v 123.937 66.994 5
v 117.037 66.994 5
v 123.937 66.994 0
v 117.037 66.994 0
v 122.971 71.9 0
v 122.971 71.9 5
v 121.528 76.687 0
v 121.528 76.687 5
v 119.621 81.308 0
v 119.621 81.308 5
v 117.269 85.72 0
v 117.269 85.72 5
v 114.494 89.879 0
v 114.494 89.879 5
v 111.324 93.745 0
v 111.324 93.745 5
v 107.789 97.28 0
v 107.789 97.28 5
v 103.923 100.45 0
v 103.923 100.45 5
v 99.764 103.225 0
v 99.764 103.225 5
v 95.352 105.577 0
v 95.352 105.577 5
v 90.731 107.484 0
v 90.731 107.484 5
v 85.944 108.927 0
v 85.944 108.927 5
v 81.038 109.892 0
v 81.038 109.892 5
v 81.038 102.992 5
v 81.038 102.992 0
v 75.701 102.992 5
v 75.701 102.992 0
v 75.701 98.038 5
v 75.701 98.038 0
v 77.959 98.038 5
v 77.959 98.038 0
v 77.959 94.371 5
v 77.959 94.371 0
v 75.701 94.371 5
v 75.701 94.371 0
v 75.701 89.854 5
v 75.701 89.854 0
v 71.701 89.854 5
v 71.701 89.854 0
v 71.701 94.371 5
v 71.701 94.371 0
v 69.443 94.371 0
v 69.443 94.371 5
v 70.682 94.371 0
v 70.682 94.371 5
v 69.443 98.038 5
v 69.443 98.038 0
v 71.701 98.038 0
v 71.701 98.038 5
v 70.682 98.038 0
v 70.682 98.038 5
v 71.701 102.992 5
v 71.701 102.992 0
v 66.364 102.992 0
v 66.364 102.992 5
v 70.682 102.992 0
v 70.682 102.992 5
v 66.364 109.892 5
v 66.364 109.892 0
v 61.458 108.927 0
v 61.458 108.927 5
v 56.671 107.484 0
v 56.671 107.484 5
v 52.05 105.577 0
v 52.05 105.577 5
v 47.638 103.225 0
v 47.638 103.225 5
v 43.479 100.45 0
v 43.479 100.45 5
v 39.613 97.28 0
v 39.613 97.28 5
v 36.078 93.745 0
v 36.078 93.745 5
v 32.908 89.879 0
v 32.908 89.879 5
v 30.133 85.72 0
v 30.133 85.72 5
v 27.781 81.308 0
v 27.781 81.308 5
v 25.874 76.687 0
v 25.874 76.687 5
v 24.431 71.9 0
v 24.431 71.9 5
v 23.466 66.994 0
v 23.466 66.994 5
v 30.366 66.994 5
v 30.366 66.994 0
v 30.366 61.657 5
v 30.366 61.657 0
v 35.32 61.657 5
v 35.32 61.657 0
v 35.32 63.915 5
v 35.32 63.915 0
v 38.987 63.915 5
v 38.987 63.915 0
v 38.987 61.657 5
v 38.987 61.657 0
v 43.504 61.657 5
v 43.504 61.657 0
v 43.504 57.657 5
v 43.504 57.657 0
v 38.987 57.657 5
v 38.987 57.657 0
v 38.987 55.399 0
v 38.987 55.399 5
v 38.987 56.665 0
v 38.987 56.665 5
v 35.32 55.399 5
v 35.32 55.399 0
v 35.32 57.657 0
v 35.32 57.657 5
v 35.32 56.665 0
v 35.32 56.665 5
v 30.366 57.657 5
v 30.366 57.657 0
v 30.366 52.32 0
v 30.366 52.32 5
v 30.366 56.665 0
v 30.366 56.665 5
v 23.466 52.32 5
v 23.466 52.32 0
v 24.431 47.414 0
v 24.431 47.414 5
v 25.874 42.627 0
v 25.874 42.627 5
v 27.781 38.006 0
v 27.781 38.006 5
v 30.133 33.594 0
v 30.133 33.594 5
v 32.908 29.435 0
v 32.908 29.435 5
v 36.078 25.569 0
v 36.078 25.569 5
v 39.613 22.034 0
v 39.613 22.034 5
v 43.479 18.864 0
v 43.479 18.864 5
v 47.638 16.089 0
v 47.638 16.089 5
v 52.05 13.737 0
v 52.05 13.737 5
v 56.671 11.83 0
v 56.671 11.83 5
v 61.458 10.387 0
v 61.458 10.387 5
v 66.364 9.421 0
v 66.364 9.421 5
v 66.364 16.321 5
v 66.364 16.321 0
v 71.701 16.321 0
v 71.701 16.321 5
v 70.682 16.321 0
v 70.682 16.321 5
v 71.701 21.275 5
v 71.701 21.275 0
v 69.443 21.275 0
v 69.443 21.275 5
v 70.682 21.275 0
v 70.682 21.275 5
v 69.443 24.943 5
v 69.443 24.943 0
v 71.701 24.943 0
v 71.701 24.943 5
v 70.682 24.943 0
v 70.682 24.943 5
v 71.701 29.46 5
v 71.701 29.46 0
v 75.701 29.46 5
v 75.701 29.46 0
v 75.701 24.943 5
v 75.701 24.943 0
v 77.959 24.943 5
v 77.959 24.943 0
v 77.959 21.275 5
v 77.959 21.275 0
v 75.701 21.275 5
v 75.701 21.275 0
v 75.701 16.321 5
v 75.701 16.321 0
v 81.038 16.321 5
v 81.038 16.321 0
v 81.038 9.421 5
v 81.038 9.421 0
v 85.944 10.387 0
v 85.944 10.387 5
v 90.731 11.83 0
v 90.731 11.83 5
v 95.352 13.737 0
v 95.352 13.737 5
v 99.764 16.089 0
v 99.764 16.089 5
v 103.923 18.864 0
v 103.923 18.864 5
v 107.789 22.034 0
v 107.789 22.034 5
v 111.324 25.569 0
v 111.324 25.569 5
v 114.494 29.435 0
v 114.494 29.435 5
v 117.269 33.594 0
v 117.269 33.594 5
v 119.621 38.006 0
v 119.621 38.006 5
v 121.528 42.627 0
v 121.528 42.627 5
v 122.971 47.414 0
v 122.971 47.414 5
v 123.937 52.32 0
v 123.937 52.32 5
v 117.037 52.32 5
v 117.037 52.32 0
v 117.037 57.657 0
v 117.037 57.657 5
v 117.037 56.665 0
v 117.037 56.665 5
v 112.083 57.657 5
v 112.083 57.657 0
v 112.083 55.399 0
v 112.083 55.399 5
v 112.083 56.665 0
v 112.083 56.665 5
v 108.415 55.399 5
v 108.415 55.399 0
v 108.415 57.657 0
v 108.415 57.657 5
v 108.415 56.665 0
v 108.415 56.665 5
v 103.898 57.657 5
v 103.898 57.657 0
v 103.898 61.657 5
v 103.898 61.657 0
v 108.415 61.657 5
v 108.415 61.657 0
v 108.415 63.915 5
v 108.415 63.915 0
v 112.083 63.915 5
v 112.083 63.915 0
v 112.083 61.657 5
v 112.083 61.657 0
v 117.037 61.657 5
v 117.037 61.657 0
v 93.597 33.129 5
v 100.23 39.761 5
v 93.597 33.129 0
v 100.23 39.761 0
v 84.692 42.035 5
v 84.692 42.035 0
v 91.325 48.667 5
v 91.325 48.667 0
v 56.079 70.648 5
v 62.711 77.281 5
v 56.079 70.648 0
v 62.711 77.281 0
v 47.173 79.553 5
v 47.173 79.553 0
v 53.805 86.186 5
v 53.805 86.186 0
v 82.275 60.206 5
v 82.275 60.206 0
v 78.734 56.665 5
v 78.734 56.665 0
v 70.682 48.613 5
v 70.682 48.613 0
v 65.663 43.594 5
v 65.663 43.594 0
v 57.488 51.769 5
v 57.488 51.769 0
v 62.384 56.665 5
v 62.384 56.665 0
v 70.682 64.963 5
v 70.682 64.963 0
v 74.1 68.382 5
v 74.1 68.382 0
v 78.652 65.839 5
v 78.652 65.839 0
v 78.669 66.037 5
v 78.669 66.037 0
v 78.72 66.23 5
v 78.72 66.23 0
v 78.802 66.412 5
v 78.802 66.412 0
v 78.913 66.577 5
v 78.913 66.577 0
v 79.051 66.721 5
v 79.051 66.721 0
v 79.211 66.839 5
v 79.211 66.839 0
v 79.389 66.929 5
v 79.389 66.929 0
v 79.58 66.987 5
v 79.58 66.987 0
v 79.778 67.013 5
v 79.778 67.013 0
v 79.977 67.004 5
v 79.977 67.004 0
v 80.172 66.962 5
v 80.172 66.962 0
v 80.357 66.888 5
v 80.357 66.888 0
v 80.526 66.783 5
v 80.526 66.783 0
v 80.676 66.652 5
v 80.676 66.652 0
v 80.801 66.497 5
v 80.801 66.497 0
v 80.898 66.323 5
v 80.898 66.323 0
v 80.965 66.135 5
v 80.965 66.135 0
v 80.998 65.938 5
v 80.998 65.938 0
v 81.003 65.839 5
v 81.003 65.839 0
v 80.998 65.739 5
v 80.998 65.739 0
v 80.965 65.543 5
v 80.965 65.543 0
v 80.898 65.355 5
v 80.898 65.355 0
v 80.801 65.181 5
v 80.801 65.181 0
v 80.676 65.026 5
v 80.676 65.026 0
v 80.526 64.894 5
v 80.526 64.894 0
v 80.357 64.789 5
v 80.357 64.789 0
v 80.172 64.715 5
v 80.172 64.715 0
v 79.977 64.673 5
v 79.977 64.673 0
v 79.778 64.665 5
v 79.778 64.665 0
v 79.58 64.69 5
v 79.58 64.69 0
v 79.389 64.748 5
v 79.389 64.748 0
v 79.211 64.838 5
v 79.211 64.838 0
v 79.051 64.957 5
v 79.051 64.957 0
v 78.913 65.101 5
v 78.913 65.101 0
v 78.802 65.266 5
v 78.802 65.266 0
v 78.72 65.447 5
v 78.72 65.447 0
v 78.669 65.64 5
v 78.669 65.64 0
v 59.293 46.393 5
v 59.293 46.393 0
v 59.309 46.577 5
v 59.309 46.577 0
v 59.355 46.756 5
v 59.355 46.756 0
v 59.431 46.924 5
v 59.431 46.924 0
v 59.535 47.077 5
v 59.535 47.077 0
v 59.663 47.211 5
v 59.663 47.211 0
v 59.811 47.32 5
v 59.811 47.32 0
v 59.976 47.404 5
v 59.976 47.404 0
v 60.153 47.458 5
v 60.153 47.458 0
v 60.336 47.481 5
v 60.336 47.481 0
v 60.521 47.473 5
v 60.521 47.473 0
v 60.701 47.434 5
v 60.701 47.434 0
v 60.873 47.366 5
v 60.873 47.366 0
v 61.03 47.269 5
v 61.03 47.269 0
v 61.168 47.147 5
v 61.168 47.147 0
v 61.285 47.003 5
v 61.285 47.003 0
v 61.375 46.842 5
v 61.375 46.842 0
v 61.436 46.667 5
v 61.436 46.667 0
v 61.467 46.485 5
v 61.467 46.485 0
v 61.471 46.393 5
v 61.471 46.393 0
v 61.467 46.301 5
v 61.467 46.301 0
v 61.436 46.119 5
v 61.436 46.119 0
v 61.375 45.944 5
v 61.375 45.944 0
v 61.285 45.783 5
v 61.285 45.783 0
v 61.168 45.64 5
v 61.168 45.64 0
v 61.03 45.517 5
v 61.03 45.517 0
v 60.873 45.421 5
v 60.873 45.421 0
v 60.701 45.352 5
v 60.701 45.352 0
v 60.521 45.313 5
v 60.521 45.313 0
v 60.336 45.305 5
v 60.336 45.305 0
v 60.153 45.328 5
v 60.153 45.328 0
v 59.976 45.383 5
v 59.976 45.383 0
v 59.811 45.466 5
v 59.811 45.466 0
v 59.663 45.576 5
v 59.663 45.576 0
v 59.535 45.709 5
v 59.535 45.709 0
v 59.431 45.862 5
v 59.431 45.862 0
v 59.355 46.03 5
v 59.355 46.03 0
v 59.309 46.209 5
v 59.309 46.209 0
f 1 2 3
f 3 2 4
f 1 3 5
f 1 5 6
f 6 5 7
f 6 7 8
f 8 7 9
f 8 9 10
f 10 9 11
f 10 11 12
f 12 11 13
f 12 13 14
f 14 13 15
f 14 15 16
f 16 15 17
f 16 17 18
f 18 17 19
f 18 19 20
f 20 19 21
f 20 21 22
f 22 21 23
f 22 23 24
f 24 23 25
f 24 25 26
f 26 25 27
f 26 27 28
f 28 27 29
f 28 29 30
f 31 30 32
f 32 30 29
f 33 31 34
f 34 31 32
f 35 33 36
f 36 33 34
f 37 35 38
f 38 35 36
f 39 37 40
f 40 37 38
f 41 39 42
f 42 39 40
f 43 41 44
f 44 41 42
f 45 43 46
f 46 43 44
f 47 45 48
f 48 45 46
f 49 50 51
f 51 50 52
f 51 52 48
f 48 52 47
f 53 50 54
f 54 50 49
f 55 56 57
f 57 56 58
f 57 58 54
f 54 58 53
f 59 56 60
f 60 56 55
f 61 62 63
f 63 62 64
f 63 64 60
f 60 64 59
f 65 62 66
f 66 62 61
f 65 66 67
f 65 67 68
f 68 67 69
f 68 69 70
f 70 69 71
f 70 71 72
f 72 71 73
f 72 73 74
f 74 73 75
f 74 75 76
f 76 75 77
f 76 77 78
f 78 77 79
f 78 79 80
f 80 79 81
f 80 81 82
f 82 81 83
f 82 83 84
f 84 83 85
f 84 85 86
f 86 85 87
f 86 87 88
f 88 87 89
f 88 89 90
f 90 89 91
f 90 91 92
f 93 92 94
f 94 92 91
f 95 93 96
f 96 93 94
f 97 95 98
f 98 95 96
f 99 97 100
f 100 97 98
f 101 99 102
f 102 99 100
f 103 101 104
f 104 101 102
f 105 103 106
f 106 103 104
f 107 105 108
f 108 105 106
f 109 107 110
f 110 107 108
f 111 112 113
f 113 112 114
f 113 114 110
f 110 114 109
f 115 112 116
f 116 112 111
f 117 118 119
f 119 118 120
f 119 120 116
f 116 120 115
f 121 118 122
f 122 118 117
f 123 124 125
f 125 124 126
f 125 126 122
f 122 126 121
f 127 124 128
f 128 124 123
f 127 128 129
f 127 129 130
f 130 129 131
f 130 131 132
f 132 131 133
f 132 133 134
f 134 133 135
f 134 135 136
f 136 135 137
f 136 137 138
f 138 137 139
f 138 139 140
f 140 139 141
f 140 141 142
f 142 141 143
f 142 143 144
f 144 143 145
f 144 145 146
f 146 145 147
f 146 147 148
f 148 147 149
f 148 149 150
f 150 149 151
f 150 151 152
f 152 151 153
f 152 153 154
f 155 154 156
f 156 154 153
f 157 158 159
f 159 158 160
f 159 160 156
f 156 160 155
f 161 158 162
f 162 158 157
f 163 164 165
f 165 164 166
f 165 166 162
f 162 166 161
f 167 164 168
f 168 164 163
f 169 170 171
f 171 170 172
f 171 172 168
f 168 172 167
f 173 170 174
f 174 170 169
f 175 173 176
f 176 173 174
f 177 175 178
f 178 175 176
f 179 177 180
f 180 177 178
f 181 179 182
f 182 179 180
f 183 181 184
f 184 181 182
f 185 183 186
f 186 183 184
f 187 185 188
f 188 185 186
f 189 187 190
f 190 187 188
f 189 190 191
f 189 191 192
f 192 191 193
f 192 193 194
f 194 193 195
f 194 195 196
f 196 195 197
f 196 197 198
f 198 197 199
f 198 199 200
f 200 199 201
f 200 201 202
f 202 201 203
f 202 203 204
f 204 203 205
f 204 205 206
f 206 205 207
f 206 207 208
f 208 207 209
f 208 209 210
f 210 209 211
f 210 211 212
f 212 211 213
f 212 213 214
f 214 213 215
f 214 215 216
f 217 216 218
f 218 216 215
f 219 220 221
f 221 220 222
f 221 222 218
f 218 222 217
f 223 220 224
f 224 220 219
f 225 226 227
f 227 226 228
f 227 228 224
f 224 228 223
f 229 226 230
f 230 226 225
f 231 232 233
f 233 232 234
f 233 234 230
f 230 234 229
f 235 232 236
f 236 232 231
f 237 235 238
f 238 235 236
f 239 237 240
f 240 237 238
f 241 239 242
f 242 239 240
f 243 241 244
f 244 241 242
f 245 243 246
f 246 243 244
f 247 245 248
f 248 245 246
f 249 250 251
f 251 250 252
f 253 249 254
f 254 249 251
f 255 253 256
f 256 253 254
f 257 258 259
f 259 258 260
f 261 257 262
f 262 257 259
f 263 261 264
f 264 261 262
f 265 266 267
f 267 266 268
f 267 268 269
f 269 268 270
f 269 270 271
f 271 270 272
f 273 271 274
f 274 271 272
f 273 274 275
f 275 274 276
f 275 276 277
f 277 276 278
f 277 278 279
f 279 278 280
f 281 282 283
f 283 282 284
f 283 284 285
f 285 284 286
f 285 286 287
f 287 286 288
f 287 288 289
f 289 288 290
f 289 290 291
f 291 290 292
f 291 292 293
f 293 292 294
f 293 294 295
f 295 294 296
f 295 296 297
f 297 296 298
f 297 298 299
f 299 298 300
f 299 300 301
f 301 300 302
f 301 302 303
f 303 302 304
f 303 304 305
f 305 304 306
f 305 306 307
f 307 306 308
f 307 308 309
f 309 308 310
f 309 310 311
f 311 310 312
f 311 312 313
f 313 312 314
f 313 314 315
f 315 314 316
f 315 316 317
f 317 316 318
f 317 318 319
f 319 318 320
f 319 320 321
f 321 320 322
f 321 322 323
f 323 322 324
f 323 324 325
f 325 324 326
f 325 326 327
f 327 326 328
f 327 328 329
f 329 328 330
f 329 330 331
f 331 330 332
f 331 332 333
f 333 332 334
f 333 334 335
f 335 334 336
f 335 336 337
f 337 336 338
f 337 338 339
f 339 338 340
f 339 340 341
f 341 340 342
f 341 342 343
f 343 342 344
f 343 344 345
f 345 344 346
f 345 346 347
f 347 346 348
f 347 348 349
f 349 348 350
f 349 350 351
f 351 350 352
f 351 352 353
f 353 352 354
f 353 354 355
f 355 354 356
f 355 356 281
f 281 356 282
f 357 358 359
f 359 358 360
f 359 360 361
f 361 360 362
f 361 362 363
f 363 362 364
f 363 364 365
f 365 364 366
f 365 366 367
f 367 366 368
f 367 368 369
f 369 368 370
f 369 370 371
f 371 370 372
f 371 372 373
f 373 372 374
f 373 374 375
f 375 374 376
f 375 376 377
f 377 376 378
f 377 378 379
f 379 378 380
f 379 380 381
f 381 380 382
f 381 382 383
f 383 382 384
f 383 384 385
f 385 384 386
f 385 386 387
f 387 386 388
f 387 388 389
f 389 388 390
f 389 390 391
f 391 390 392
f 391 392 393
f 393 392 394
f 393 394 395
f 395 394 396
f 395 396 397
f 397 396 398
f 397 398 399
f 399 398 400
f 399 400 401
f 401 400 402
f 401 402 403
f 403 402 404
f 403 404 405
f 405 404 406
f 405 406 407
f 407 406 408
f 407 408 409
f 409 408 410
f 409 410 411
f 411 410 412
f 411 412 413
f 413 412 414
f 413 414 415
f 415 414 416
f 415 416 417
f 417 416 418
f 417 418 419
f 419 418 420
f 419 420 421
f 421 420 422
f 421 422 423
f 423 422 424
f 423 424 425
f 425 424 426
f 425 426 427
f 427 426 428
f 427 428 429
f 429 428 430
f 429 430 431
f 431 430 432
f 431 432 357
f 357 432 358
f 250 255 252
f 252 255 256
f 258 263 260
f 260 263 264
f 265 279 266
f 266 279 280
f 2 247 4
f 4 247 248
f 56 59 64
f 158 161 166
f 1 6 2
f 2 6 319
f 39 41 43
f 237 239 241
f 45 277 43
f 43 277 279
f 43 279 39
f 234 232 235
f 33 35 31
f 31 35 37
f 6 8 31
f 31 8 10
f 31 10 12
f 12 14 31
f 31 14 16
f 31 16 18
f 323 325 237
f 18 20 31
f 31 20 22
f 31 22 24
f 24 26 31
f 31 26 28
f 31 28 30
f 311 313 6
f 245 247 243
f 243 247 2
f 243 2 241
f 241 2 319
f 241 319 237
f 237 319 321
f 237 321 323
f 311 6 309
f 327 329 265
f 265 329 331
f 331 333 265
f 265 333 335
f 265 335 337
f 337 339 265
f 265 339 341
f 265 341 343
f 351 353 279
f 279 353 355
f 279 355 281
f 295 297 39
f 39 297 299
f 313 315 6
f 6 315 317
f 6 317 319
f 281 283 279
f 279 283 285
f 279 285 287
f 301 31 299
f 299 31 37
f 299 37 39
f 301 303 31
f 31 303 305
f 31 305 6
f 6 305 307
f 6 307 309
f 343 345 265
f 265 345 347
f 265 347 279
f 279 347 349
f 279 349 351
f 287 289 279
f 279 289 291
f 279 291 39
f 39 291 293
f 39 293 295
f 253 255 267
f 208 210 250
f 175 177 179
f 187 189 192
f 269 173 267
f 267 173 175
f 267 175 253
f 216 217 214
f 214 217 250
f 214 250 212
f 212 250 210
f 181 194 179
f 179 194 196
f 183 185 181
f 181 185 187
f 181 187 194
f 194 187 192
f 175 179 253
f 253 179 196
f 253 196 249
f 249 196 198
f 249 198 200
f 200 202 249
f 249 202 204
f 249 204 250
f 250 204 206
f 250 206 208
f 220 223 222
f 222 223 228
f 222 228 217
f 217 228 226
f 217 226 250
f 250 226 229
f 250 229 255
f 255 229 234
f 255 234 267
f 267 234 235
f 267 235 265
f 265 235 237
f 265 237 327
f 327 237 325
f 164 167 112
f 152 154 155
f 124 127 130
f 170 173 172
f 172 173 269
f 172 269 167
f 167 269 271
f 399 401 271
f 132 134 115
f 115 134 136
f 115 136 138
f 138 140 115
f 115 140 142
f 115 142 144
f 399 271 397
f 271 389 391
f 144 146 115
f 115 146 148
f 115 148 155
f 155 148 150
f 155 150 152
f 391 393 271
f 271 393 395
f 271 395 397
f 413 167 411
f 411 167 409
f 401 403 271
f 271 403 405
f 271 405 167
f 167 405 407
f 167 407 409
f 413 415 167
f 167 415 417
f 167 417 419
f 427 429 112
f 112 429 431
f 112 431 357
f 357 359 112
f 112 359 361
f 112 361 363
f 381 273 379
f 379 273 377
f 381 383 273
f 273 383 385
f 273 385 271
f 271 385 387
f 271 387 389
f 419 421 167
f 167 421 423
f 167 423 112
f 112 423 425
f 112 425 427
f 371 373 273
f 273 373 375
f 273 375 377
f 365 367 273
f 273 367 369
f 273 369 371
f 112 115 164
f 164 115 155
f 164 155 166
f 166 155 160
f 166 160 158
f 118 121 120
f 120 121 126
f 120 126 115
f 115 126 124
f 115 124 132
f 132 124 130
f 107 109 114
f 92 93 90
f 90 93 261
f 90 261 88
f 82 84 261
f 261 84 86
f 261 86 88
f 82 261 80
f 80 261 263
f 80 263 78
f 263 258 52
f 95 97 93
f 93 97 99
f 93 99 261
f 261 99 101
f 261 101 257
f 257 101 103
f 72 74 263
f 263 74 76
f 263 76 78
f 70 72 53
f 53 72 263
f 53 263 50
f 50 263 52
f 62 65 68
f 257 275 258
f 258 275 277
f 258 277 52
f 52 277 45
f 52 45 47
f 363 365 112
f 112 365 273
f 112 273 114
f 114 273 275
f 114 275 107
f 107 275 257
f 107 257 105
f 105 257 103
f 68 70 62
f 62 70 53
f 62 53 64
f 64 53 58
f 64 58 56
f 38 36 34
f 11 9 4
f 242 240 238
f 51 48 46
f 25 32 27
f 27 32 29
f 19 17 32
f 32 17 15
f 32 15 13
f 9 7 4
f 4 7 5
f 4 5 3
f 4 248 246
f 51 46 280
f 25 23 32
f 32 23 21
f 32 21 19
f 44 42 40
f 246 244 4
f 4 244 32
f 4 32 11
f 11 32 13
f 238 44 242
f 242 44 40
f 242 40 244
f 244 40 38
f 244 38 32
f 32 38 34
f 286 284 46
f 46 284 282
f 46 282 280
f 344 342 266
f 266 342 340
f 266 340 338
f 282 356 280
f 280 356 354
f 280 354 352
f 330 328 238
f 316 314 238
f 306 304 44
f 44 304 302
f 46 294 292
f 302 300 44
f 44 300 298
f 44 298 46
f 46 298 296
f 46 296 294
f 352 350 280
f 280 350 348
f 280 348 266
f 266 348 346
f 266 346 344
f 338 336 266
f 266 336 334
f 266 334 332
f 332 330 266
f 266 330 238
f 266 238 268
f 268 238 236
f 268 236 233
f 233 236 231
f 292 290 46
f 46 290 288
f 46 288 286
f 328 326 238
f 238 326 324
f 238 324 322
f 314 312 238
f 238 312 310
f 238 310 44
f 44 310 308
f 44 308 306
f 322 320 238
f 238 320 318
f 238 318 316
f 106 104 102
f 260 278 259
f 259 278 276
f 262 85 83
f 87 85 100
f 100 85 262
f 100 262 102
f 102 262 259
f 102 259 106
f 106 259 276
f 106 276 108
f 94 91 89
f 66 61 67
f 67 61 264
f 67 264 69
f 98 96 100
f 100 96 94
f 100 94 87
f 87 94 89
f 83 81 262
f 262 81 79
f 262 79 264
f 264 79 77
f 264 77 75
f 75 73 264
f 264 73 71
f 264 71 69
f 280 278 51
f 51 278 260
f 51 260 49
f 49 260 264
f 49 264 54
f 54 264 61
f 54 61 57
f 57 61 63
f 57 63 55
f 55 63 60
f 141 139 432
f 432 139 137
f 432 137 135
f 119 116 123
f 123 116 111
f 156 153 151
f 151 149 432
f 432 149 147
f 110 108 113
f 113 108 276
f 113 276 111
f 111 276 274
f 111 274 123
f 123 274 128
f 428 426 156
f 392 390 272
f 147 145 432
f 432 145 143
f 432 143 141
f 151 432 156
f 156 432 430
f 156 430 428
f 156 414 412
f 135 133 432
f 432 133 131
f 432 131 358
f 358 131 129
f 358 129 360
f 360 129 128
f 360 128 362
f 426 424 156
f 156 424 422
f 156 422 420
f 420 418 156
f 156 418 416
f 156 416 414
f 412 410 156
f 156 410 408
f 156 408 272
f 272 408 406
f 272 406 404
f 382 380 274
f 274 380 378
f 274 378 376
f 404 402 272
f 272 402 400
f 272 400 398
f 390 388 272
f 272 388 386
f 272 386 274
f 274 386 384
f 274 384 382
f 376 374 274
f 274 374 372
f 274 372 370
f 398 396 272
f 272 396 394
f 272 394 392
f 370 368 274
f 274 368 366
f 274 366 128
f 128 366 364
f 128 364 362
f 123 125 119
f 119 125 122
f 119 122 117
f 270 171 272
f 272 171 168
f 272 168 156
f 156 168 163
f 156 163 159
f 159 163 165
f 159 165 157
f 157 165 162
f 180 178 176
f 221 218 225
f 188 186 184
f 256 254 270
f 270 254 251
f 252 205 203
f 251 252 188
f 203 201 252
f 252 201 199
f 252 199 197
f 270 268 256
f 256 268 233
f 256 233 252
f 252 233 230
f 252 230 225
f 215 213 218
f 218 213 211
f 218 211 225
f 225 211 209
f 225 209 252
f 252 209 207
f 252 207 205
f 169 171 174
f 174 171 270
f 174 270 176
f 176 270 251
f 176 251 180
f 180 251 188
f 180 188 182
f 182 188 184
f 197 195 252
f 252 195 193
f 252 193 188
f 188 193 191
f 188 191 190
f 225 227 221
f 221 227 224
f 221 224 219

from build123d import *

# Parameters (mm, degrees)
SKETCH3_R           = 1.089052178
SKETCH3_R_2         = 1.175054292
BOSS_EXTRUDE5_DEPTH = 5


with BuildPart() as part:
    # Sketch3 → Boss-Extrude5 (new body)
    with BuildSketch(Plane.XY):
        with BuildLine():
            Line((81.038403504, 109.892462561), (81.038403504, 102.992462561))
            Line((81.038403504, 102.992462561), (75.701022894, 102.992462561))
            Line((75.701022894, 102.992462561), (75.701022894, 98.038427684))
            Line((75.701022894, 98.038427684), (77.959022894, 98.038427684))
            Line((77.959022894, 98.038427684), (77.959022894, 94.370627684))
            Line((77.959022894, 94.370627684), (75.701022894, 94.370627684))
            Line((75.701022894, 94.370627684), (75.701022894, 89.854027684))
            Line((75.701022894, 89.854027684), (71.701022894, 89.854027684))
            Line((71.701022894, 89.854027684), (71.701022894, 94.370627684))
            Line((71.701022894, 94.370627684), (69.443022894, 94.370627684))
            Line((69.443022894, 94.370627684), (69.443022894, 98.038427684))
            Line((69.443022894, 98.038427684), (71.701022894, 98.038427684))
            Line((71.701022894, 98.038427684), (71.701022894, 102.992462561))
            Line((71.701022894, 102.992462561), (66.363642284, 102.992462561))
            Line((66.363642284, 102.992462561), (66.363642284, 109.892462561))
            ThreePointArc((66.363642284, 109.892462561), (37.802245989, 95.555722027), (23.465505456, 66.994325733))
            Line((23.465505456, 66.994325733), (30.365505456, 66.994325733))
            Line((30.365505456, 66.994325733), (30.365505456, 61.656945123))
            Line((30.365505456, 61.656945123), (35.319540332, 61.656945123))
            Line((35.319540332, 61.656945123), (35.319540332, 63.914945123))
            Line((35.319540332, 63.914945123), (38.987340332, 63.914945123))
            Line((38.987340332, 63.914945123), (38.987340332, 61.656945123))
            Line((38.987340332, 61.656945123), (43.503940332, 61.656945123))
            Line((43.503940332, 61.656945123), (43.503940332, 57.656945123))
            Line((43.503940332, 57.656945123), (38.987340332, 57.656945123))
            Line((38.987340332, 57.656945123), (38.987340332, 55.398945123))
            Line((38.987340332, 55.398945123), (35.319540332, 55.398945123))
            Line((35.319540332, 55.398945123), (35.319540332, 57.656945123))
            Line((35.319540332, 57.656945123), (30.365505456, 57.656945123))
            Line((30.365505456, 57.656945123), (30.365505456, 52.319564513))
            Line((30.365505456, 52.319564513), (23.465505456, 52.319564513))
            ThreePointArc((23.465505456, 52.319564513), (37.802245989, 23.758168218), (66.363642284, 9.421427684))
            Line((66.363642284, 9.421427684), (66.363642284, 16.321427684))
            Line((66.363642284, 16.321427684), (71.701022894, 16.321427684))
            Line((71.701022894, 16.321427684), (71.701022894, 21.275462561))
            Line((71.701022894, 21.275462561), (69.443022894, 21.275462561))
            Line((69.443022894, 21.275462561), (69.443022894, 24.943262561))
            Line((69.443022894, 24.943262561), (71.701022894, 24.943262561))
            Line((71.701022894, 24.943262561), (71.701022894, 29.459862561))
            Line((71.701022894, 29.459862561), (75.701022894, 29.459862561))
            Line((75.701022894, 29.459862561), (75.701022894, 24.943262561))
            Line((75.701022894, 24.943262561), (77.959022894, 24.943262561))
            Line((77.959022894, 24.943262561), (77.959022894, 21.275462561))
            Line((77.959022894, 21.275462561), (75.701022894, 21.275462561))
            Line((75.701022894, 21.275462561), (75.701022894, 16.321427684))
            Line((75.701022894, 16.321427684), (81.038403504, 16.321427684))
            Line((81.038403504, 16.321427684), (81.038403504, 9.421427684))
            ThreePointArc((81.038403504, 9.421427684), (109.599799799, 23.758168218), (123.936540332, 52.319564513))
            Line((123.936540332, 52.319564513), (117.036540332, 52.319564513))
            Line((117.036540332, 52.319564513), (117.036540332, 57.656945123))
            Line((117.036540332, 57.656945123), (112.082505456, 57.656945123))
            Line((112.082505456, 57.656945123), (112.082505456, 55.398945123))
            Line((112.082505456, 55.398945123), (108.414705456, 55.398945123))
            Line((108.414705456, 55.398945123), (108.414705456, 57.656945123))
            Line((108.414705456, 57.656945123), (103.898105456, 57.656945123))
            Line((103.898105456, 57.656945123), (103.898105456, 61.656945123))
            Line((103.898105456, 61.656945123), (108.414705456, 61.656945123))
            Line((108.414705456, 61.656945123), (108.414705456, 63.914945123))
            Line((108.414705456, 63.914945123), (112.082505456, 63.914945123))
            Line((112.082505456, 63.914945123), (112.082505456, 61.656945123))
            Line((112.082505456, 61.656945123), (117.036540332, 61.656945123))
            Line((117.036540332, 61.656945123), (117.036540332, 66.994325733))
            Line((117.036540332, 66.994325733), (123.936540332, 66.994325733))
            ThreePointArc((123.936540332, 66.994325733), (109.599799799, 95.555722027), (81.038403504, 109.892462561))
        make_face()
        with Locations((60.382249582, 46.393077684)):
            Circle(SKETCH3_R, mode=Mode.SUBTRACT)
        Polygon((65.663040298, 43.594110186), (57.487806829, 51.769189843), (74.099869727, 68.381565292), (82.275103197, 60.206485634), align=None, mode=Mode.SUBTRACT)
        Polygon((93.597305456, 33.128564513), (84.692315031, 42.034629122), (91.325115031, 48.666629122), (100.230105456, 39.760564513), align=None, mode=Mode.SUBTRACT)
        Polygon((56.078706893, 70.64823726), (47.172642284, 79.553227684), (53.804642284, 86.186027684), (62.710706893, 77.28103726), align=None, mode=Mode.SUBTRACT)
        with Locations((79.827503135, 65.838697094)):
            Circle(SKETCH3_R_2, mode=Mode.SUBTRACT)
    extrude(amount=BOSS_EXTRUDE5_DEPTH)


solid = part.part
